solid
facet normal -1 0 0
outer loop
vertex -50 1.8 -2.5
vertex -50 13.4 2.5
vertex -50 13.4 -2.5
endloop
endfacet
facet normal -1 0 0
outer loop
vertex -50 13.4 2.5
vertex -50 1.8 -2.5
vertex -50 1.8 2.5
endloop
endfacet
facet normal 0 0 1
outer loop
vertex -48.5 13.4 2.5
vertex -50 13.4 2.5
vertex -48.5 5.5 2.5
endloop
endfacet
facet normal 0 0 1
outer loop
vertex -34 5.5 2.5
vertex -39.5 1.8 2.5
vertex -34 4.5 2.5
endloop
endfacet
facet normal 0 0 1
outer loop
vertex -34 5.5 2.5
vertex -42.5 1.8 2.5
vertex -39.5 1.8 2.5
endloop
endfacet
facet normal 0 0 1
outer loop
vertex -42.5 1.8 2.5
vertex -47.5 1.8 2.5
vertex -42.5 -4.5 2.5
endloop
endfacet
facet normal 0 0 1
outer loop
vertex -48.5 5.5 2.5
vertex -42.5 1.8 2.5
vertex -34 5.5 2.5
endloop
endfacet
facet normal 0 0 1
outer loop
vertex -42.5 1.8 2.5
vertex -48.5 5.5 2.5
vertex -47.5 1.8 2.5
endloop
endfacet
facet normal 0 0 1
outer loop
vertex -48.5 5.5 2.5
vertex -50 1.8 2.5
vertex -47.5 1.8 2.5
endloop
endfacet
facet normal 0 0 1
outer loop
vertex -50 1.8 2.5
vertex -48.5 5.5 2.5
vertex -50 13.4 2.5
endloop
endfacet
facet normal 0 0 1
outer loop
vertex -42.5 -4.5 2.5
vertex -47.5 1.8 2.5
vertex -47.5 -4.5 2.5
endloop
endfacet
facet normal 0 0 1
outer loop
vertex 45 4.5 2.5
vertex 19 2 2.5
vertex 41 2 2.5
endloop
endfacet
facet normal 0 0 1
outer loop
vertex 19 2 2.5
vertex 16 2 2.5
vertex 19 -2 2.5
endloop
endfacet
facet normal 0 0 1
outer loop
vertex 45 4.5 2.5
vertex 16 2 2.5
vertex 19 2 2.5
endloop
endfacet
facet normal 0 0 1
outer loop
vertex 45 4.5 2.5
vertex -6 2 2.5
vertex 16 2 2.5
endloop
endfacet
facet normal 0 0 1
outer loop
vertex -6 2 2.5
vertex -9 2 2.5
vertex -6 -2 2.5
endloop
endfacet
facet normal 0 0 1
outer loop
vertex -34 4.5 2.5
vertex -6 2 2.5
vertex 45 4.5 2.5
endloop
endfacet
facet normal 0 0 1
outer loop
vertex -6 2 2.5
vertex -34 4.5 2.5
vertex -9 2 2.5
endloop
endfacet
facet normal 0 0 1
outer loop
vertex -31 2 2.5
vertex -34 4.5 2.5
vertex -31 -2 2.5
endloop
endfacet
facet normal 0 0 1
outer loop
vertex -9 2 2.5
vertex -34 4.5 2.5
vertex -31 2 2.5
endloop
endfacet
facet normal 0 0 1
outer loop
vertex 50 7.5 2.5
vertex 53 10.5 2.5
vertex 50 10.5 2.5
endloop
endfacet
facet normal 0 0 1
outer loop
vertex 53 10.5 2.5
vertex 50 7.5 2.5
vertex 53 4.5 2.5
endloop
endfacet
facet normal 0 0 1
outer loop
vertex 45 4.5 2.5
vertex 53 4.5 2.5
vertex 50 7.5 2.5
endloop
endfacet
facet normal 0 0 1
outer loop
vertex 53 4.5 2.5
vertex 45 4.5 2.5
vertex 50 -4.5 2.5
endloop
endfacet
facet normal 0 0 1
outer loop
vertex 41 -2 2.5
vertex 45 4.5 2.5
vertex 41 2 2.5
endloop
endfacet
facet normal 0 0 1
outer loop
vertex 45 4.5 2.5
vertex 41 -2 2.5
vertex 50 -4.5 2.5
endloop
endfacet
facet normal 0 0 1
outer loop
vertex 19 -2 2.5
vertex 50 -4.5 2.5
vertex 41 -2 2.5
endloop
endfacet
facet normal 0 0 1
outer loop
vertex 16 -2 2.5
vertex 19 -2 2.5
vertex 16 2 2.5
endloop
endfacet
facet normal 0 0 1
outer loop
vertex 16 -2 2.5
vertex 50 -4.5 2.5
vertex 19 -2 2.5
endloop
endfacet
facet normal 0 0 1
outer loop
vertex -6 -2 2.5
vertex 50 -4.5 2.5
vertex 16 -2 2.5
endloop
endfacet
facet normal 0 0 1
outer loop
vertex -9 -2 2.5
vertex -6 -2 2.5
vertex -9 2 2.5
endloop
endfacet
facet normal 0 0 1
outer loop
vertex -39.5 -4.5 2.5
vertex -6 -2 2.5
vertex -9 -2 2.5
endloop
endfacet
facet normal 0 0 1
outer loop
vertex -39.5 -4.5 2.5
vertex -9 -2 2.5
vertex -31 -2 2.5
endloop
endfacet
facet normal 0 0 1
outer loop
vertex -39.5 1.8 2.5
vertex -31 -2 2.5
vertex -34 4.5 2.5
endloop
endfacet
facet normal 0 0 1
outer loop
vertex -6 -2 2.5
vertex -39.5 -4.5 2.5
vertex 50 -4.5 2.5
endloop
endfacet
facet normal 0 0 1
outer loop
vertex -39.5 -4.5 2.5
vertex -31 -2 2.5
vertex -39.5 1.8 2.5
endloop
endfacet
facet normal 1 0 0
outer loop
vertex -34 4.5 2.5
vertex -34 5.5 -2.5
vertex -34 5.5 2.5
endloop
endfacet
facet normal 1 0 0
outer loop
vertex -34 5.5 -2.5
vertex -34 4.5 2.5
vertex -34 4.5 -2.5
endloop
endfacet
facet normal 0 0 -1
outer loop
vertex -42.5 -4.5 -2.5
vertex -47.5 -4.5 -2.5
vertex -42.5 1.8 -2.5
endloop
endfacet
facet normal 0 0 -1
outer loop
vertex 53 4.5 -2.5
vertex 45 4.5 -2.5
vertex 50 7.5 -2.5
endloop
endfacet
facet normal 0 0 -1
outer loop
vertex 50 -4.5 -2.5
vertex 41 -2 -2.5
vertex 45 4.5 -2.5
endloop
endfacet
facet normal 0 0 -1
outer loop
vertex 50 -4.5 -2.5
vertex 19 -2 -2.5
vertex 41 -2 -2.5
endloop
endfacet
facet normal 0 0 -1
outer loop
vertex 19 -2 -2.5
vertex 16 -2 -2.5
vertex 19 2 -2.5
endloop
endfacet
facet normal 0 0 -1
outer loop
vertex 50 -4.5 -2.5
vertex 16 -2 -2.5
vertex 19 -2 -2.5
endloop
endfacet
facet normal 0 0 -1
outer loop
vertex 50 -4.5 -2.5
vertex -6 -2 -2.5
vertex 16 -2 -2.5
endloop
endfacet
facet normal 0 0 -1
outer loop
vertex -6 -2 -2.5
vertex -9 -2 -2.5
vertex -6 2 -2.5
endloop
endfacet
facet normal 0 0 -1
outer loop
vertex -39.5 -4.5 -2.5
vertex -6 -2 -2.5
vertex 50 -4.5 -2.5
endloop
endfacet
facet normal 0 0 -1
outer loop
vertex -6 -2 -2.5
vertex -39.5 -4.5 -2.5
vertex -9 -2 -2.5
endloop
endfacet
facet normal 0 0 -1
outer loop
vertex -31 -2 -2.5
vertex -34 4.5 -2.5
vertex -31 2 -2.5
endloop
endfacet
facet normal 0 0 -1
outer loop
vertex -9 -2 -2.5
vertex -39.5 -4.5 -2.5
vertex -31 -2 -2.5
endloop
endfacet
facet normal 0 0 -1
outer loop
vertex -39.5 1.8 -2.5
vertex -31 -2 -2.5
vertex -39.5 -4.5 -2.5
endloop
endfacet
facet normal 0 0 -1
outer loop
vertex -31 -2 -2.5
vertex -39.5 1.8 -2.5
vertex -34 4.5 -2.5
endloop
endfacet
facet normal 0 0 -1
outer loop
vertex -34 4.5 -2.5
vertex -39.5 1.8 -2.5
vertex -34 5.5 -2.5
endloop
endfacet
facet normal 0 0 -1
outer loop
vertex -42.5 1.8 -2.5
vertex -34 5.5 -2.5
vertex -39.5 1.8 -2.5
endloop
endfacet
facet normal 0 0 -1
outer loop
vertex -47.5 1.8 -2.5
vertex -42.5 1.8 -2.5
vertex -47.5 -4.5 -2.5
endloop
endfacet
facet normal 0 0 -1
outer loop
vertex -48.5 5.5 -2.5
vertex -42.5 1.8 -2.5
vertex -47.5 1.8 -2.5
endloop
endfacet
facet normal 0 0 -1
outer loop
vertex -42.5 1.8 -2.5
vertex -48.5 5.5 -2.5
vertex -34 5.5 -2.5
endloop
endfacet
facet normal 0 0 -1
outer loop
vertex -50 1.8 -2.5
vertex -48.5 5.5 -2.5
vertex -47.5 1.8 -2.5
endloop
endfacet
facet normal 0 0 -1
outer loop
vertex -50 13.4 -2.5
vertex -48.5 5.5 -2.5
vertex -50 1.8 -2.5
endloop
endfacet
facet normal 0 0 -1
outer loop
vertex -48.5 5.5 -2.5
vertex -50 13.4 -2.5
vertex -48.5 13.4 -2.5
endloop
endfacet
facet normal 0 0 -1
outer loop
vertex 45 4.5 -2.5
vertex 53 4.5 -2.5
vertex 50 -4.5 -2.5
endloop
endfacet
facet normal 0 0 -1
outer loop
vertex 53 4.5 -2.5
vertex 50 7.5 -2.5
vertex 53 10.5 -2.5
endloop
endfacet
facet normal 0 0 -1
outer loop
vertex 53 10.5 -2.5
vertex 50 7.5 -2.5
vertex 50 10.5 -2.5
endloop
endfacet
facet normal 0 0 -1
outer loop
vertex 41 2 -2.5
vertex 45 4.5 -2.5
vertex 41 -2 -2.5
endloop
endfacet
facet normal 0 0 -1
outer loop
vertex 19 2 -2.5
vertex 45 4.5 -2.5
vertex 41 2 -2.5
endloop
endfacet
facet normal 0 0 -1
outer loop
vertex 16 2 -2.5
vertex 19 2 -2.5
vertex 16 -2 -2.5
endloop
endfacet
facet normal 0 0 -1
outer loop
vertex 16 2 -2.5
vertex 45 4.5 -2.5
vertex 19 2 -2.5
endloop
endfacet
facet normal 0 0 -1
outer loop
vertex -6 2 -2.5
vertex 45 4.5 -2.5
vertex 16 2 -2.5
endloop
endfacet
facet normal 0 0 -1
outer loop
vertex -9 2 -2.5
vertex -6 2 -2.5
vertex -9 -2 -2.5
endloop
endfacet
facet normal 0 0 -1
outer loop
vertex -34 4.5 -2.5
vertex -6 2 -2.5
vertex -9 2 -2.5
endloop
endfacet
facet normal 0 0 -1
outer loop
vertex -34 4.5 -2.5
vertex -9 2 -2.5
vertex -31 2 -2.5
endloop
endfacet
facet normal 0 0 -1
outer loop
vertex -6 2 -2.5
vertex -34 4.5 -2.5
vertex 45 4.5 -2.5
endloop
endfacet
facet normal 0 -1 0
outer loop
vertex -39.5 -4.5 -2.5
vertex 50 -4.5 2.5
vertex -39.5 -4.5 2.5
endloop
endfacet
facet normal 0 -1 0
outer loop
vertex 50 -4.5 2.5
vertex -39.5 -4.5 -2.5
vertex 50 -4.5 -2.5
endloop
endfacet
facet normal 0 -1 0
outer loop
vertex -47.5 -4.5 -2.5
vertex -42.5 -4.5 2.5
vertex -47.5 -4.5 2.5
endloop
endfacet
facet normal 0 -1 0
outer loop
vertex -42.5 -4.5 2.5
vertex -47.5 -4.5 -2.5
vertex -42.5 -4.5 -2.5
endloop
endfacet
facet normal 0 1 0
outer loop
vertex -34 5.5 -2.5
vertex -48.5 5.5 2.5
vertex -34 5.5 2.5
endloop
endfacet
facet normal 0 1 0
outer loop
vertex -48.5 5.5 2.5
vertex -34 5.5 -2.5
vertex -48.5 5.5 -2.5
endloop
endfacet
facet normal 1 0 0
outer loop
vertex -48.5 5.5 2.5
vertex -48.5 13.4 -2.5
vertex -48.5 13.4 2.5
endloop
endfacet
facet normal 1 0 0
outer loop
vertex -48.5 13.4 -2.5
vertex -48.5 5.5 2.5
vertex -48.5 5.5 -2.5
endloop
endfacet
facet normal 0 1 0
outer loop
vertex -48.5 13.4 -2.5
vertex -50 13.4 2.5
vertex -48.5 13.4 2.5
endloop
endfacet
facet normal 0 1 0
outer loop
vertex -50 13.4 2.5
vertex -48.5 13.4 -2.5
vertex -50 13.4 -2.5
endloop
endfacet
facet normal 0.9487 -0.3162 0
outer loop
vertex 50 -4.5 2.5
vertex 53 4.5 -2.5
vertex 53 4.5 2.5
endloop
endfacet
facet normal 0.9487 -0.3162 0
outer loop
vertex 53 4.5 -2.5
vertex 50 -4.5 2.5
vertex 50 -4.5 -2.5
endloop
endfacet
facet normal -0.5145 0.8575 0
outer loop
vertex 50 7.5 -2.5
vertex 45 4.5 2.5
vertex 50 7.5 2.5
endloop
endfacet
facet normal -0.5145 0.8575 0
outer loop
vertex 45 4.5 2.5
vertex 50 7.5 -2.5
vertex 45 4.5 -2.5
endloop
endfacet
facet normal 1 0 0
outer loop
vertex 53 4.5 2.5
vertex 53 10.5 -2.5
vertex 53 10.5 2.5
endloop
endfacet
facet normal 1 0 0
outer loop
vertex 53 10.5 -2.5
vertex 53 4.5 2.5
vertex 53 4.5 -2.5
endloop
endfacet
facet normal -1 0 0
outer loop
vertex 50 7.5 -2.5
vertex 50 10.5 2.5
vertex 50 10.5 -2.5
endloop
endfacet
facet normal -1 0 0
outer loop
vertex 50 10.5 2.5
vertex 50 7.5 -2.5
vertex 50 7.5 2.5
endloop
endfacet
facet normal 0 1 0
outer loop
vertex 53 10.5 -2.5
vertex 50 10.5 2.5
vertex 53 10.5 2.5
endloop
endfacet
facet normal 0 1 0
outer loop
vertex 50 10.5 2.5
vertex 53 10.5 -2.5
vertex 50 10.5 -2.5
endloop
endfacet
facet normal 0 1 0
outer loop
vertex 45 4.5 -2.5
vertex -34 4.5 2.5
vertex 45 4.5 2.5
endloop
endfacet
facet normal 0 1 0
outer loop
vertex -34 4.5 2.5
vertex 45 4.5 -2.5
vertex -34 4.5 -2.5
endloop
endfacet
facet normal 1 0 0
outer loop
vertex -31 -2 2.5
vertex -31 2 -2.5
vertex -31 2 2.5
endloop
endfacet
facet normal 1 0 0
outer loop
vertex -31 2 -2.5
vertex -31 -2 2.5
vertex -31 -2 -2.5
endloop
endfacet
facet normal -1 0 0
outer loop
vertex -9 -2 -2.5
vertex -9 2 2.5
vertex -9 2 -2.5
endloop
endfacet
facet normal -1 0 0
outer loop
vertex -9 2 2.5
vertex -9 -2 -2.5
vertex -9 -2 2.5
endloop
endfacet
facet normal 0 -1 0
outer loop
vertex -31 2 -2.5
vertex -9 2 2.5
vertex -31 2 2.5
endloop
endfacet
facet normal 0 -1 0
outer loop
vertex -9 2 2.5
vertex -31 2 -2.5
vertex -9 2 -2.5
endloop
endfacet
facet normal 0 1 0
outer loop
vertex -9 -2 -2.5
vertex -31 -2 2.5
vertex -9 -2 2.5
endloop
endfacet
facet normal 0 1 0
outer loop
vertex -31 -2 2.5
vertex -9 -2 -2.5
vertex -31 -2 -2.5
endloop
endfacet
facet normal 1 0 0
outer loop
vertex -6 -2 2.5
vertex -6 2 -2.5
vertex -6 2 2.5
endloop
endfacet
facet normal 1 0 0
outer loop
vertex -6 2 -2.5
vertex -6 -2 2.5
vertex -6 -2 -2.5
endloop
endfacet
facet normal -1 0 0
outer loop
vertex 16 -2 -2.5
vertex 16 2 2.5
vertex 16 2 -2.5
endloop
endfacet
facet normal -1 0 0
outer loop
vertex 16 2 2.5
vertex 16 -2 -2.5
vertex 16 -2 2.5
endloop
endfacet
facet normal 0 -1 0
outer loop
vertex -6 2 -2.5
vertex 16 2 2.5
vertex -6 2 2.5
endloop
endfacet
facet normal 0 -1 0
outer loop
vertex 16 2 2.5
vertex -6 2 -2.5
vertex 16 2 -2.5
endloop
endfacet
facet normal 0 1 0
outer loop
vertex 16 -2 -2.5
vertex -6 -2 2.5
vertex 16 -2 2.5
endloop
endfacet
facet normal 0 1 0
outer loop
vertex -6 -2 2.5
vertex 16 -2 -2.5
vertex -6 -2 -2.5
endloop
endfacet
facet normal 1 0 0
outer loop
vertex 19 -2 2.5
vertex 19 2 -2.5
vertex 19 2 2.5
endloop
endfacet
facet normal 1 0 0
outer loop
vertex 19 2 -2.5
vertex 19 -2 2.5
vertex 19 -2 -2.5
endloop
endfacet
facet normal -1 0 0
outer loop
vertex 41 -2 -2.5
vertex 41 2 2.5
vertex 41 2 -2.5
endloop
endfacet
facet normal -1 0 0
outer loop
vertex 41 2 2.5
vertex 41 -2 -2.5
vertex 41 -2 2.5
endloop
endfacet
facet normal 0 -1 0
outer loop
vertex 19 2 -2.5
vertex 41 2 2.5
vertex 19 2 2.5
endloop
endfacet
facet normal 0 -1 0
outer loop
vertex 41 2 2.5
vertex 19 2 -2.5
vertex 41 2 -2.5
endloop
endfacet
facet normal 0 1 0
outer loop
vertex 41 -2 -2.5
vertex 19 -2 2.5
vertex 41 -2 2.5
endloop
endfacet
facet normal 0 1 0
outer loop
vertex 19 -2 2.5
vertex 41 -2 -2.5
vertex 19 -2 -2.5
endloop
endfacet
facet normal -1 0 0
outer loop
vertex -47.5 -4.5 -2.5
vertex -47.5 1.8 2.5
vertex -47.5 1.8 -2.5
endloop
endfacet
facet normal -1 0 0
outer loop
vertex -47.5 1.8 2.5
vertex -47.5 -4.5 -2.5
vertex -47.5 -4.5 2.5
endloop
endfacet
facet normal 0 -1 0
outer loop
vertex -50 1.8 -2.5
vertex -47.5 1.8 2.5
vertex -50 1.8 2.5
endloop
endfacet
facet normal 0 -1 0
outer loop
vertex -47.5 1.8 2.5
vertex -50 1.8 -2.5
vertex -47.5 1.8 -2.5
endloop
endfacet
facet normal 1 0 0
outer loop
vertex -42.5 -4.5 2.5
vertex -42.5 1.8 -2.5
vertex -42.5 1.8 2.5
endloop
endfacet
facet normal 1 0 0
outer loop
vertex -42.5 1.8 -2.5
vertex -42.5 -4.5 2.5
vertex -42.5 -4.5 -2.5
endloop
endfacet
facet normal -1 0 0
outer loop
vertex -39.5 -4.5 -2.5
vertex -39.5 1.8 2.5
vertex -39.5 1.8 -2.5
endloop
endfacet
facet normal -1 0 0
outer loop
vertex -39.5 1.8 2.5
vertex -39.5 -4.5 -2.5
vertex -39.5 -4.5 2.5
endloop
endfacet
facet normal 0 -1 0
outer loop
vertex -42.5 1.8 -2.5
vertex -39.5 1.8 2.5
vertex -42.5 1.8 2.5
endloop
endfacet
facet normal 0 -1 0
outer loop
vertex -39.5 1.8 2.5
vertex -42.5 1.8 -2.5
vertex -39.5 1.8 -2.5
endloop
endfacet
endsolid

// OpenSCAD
include <../../lib/relativity.scad/relativity.scad>

differed("hole")
box([100, 9, 5]) {
  translated(5*x) translated(25*x, n=[-1:1]) box([22, 4, 6], $class="hole");
  align(-x-y) box([16, 10, $parent_size.z], anchor=-x-y)
    align(-x+y) box([1.5, 7.9, $parent_size.z], anchor=-x-y);
  align(-x-y) translated(5*x) mirrored(x) translated(2.5*x) box([3, 6.3, 6], anchor=-x-y, $class="hole");
  hulled("hull") {
    align(x+y) box([3, 3, $parent_size.z], anchor=-x-y, $class="hull")
      align(y) box([3, 3, $parent_size.z], anchor=-y, $class="normal");
    align(x+y) box([5, $parent_size.y, $parent_size.z], anchor=x+y, $class="hull");
  }
}
